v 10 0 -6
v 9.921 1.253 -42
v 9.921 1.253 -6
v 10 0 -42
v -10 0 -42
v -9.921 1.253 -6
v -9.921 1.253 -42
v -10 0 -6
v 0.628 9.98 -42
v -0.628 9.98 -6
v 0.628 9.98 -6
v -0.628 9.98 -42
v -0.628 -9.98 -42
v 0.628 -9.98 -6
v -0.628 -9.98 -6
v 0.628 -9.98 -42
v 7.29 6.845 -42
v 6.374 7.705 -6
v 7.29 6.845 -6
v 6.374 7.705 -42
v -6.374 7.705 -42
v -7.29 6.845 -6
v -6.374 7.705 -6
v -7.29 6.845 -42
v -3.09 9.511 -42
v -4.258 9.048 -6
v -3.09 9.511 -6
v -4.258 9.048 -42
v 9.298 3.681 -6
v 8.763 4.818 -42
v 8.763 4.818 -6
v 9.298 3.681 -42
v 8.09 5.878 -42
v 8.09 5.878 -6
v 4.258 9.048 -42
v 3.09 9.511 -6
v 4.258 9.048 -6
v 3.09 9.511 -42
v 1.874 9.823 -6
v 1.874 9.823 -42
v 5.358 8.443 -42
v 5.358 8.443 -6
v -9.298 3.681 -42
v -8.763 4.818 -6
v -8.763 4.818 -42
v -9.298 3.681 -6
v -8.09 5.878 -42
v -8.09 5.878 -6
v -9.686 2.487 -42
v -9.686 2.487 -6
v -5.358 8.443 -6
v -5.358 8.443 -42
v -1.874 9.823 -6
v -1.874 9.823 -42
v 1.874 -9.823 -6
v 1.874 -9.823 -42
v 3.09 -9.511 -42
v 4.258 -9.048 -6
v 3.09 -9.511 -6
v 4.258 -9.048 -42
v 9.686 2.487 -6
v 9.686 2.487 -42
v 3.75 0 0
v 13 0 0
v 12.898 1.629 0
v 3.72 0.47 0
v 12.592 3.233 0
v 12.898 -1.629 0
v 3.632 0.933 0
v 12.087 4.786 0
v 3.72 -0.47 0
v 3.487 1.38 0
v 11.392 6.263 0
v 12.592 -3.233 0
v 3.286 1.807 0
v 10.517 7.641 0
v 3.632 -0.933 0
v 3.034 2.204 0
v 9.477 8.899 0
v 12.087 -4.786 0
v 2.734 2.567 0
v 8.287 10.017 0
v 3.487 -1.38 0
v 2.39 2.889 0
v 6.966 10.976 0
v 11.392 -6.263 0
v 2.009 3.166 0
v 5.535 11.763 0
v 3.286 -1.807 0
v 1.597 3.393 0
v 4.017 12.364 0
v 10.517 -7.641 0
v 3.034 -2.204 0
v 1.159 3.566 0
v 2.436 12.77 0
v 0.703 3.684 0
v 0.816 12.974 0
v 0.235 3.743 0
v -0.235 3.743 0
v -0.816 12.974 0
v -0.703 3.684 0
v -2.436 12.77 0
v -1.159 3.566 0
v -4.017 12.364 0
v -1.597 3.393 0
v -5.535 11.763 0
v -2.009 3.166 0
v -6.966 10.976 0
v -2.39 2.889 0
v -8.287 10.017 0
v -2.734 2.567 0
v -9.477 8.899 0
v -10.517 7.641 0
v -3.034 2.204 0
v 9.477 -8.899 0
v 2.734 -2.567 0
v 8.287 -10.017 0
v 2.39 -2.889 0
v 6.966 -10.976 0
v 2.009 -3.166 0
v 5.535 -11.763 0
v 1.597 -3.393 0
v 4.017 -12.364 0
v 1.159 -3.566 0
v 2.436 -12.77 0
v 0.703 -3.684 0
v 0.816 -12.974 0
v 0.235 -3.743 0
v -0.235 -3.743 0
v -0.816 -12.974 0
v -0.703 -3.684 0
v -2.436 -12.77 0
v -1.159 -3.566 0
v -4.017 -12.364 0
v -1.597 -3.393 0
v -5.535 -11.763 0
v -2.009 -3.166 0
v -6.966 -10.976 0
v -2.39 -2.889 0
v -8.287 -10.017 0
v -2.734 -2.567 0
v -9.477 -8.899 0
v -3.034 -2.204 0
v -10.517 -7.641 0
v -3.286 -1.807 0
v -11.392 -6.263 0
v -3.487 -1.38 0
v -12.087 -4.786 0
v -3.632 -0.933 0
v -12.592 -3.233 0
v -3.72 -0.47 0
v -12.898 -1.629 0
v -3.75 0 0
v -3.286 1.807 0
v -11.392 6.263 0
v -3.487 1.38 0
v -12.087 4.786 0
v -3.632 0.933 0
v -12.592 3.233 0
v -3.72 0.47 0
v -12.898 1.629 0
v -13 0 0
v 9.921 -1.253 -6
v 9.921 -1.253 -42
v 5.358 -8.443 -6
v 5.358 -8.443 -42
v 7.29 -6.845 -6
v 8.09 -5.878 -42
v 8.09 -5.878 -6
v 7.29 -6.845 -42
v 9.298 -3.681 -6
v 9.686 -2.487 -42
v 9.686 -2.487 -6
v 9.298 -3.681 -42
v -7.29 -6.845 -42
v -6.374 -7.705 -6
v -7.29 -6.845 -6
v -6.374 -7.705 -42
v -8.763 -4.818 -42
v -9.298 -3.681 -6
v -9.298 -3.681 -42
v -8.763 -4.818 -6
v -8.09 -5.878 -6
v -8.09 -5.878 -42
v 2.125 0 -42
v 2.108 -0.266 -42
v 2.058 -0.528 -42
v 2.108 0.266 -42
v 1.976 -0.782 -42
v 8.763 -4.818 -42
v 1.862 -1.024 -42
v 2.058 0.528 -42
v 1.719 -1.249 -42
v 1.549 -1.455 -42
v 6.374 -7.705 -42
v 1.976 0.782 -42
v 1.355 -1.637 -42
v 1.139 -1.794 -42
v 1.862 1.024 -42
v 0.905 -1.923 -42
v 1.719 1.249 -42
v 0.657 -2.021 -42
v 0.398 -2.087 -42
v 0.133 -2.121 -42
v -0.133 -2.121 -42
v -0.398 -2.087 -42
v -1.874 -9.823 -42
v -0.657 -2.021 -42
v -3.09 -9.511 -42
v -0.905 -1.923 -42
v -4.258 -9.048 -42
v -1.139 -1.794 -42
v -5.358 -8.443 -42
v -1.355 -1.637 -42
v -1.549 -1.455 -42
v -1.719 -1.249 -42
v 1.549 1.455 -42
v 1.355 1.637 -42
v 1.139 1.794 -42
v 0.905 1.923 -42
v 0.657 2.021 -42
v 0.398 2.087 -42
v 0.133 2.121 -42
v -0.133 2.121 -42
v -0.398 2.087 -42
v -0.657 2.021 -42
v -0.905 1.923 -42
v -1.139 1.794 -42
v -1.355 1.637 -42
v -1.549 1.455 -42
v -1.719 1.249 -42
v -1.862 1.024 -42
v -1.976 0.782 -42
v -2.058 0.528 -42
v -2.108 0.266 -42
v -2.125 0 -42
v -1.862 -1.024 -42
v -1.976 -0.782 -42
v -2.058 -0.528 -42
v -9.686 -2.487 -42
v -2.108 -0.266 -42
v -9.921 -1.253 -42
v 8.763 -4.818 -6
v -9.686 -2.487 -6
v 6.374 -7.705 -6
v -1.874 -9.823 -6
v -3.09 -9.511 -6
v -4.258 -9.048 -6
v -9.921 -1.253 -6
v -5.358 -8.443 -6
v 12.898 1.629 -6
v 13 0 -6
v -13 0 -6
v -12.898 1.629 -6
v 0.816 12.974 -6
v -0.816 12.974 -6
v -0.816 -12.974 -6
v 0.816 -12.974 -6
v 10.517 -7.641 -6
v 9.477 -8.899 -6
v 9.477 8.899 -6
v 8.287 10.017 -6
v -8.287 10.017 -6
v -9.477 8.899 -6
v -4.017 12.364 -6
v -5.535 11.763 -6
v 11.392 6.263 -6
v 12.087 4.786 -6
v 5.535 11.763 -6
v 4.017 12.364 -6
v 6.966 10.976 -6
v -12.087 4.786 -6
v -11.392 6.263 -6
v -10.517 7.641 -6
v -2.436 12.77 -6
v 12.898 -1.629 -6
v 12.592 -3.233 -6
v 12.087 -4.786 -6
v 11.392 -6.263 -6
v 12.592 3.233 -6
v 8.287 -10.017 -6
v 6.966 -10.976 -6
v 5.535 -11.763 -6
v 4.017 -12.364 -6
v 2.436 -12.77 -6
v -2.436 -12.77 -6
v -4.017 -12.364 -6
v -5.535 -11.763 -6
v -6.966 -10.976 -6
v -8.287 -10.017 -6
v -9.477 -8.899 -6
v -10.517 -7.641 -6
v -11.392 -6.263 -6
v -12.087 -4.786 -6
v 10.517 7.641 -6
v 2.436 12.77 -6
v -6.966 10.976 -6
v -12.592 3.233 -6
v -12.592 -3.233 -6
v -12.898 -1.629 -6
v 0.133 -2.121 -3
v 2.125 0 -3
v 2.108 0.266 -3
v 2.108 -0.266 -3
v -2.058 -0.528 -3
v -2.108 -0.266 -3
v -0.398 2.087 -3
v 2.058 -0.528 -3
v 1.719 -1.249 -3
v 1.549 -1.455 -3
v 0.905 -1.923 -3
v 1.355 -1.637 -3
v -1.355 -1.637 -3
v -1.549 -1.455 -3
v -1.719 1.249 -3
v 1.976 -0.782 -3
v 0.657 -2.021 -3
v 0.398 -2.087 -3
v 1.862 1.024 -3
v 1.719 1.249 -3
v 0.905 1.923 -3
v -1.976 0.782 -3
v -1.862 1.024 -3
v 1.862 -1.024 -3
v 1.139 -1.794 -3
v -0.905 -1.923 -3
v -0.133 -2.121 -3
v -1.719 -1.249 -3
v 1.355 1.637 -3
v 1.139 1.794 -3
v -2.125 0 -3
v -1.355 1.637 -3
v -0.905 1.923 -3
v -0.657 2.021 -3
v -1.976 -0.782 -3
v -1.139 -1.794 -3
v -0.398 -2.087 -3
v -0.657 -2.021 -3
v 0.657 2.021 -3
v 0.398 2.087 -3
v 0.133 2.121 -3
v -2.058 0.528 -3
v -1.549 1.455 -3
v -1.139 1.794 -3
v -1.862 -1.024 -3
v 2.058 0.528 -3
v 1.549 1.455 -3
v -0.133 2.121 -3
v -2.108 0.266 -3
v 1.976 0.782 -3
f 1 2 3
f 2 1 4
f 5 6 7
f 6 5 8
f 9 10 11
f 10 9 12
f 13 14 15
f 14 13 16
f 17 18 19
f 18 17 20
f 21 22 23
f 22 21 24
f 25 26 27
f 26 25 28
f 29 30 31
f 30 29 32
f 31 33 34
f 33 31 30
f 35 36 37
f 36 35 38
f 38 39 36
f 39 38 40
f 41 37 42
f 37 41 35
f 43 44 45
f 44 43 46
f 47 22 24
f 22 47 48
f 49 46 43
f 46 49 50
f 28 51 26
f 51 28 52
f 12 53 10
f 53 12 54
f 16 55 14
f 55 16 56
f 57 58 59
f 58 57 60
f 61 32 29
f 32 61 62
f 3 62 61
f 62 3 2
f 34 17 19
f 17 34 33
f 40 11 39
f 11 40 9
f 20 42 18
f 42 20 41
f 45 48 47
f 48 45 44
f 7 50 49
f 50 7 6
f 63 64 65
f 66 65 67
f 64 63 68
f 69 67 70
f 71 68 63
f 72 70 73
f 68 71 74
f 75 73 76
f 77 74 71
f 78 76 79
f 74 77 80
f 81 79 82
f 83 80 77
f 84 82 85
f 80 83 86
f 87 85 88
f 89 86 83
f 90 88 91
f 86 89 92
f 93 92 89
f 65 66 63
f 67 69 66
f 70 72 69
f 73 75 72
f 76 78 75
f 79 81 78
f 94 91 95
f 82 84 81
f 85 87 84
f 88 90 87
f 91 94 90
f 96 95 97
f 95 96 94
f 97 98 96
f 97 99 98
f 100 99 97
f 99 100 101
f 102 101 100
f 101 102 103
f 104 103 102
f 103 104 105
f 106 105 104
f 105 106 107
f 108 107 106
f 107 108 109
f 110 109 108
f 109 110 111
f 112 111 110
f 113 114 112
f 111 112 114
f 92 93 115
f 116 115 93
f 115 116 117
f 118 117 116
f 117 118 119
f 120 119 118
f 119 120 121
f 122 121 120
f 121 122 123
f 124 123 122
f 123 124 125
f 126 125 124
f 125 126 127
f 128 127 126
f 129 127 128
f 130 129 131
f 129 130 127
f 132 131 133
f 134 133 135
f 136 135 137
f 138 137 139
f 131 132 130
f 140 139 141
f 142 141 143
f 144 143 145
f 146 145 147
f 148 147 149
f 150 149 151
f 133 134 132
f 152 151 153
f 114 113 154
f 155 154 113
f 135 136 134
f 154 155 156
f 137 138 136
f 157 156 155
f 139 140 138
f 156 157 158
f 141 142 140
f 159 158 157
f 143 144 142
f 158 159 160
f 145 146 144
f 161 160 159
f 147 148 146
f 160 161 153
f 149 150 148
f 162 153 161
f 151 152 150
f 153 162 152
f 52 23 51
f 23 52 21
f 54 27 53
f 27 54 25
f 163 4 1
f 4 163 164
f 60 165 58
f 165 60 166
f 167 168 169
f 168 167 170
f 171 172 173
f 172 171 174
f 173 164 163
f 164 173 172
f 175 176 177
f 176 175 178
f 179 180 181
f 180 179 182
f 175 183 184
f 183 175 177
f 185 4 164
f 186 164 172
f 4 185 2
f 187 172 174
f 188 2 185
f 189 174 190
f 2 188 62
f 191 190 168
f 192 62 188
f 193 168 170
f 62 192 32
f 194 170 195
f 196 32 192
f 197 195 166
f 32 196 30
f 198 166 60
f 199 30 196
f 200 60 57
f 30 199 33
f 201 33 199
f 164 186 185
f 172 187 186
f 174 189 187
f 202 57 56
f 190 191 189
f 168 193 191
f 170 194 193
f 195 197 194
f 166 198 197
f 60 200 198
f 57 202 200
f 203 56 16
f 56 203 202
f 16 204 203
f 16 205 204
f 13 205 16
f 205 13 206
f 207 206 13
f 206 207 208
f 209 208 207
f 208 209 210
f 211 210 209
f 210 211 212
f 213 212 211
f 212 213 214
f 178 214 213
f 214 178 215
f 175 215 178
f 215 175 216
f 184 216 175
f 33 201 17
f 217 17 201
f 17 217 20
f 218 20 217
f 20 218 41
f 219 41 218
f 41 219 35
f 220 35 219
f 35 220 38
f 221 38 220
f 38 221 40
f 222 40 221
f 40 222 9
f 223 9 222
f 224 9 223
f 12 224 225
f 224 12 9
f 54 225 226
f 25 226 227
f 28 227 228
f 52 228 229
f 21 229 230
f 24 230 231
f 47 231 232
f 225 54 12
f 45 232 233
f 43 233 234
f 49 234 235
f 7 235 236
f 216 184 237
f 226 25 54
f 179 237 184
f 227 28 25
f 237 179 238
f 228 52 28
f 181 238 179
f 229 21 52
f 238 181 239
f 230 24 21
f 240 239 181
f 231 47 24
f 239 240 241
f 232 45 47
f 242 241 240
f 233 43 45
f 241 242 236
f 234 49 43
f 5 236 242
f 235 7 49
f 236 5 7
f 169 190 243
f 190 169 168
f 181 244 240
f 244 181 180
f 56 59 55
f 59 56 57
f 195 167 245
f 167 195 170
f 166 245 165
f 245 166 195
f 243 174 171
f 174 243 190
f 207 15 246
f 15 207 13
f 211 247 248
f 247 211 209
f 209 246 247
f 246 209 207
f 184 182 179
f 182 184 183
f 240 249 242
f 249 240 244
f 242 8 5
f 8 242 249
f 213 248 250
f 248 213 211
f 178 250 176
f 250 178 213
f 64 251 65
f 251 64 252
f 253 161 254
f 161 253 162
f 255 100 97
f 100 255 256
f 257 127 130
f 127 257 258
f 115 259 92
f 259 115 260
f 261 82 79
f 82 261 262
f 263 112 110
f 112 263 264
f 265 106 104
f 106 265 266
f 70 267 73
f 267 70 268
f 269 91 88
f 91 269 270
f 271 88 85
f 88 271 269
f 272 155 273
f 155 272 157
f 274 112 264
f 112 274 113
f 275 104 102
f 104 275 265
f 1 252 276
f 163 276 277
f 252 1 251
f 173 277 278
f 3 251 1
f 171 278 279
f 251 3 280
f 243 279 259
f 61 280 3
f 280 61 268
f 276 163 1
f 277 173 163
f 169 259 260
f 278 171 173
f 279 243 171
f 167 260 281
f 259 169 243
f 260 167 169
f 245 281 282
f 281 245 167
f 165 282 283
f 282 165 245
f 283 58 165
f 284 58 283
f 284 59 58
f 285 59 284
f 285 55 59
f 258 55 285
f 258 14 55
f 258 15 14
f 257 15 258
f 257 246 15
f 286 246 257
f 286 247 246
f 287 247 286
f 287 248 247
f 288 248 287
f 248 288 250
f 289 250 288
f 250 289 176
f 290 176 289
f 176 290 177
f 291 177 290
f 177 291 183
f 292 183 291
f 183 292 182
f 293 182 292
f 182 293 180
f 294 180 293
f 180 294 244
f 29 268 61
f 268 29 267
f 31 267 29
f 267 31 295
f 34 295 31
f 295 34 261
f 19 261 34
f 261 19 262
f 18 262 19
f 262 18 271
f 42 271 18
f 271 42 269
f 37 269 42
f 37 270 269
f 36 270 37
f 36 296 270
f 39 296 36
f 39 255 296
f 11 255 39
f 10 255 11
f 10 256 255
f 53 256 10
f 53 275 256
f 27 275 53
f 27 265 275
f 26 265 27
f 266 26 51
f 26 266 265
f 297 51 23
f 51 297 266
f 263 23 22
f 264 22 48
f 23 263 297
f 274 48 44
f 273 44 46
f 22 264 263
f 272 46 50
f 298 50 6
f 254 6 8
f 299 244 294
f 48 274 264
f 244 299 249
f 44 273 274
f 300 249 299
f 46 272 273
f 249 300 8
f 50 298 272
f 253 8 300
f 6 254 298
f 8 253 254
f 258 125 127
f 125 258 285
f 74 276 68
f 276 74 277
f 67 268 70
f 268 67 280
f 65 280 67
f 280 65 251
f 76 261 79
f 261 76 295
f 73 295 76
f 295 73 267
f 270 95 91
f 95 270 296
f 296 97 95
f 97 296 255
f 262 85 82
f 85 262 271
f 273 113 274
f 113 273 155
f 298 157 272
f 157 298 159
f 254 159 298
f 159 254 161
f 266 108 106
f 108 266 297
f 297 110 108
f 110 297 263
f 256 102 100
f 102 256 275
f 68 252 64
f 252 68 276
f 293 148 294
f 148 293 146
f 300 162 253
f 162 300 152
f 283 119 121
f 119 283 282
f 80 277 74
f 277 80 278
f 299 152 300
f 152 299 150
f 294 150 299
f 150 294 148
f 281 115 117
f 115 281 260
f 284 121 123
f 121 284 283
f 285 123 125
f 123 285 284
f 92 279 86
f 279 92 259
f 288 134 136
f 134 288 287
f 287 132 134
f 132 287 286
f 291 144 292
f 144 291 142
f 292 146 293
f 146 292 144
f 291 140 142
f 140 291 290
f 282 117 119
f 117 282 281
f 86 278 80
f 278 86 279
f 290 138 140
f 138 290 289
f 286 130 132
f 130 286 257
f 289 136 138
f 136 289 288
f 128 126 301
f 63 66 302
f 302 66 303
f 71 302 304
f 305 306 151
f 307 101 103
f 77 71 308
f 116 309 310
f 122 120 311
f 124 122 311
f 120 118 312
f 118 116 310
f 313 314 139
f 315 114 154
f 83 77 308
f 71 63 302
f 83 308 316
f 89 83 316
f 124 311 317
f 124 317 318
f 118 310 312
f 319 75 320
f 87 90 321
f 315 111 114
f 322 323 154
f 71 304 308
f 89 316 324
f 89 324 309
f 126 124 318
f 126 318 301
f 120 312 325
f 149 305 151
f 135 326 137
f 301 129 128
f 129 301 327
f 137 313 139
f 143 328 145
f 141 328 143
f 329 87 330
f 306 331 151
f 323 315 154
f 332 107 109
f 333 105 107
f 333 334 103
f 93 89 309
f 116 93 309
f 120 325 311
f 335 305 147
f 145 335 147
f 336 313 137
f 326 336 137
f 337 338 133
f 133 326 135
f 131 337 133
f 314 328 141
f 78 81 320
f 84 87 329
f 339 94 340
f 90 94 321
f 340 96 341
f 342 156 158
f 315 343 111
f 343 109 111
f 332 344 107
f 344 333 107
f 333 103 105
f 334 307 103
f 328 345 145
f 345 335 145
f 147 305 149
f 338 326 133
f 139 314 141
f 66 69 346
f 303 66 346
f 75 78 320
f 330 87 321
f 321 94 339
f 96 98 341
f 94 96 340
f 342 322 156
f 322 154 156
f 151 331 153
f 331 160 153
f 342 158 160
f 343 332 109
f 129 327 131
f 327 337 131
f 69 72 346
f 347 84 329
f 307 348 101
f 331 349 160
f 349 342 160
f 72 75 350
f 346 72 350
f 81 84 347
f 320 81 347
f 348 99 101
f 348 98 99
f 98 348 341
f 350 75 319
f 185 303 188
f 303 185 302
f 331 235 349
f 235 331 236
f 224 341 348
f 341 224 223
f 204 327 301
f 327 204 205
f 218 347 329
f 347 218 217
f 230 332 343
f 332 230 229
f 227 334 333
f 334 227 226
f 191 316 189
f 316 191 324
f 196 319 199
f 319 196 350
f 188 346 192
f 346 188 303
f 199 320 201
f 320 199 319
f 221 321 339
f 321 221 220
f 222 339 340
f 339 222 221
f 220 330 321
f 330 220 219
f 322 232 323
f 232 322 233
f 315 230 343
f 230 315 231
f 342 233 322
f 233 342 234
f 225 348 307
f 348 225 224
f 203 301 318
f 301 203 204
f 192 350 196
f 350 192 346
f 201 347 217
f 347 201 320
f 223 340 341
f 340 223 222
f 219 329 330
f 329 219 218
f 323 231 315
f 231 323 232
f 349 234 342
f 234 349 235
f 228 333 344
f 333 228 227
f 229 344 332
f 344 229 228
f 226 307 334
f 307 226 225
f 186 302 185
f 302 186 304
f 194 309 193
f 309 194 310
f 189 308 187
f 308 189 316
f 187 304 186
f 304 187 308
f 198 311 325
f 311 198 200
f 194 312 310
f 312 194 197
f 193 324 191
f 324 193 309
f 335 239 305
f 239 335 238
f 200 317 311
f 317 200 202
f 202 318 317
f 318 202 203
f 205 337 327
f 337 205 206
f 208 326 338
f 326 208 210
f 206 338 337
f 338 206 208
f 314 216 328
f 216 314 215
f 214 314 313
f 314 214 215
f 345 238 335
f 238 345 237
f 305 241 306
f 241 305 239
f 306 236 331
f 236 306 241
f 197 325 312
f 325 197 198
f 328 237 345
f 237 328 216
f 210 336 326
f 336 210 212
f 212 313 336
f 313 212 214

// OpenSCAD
$fn = 50;


difference() {
	union() {
		translate(v = [0, 0, -42.0000000000]) {
			cylinder(h = 42, r = 10.0000000000);
		}
		translate(v = [0, 0, -6.0000000000]) {
			cylinder(h = 6, r = 13.0000000000);
		}
	}
	union() {
		translate(v = [0, 0, 0]) {
			rotate(a = [0, 0, 0]) {
				difference() {
					union() {
						#translate(v = [0, 0, -42.0000000000]) {
							cylinder(h = 42, r = 2.0000000000);
						}
						#translate(v = [0, 0, -3]) {
							cylinder(h = 3, r1 = 2.1250000000, r2 = 3.7500000000);
						}
						#translate(v = [0, 0, -42.0000000000]) {
							cylinder(h = 42, r = 2.1250000000);
						}
						#translate(v = [0, 0, -42.0000000000]) {
							cylinder(h = 42, r = 2.0000000000);
						}
					}
					union();
				}
			}
		}
	}
}
